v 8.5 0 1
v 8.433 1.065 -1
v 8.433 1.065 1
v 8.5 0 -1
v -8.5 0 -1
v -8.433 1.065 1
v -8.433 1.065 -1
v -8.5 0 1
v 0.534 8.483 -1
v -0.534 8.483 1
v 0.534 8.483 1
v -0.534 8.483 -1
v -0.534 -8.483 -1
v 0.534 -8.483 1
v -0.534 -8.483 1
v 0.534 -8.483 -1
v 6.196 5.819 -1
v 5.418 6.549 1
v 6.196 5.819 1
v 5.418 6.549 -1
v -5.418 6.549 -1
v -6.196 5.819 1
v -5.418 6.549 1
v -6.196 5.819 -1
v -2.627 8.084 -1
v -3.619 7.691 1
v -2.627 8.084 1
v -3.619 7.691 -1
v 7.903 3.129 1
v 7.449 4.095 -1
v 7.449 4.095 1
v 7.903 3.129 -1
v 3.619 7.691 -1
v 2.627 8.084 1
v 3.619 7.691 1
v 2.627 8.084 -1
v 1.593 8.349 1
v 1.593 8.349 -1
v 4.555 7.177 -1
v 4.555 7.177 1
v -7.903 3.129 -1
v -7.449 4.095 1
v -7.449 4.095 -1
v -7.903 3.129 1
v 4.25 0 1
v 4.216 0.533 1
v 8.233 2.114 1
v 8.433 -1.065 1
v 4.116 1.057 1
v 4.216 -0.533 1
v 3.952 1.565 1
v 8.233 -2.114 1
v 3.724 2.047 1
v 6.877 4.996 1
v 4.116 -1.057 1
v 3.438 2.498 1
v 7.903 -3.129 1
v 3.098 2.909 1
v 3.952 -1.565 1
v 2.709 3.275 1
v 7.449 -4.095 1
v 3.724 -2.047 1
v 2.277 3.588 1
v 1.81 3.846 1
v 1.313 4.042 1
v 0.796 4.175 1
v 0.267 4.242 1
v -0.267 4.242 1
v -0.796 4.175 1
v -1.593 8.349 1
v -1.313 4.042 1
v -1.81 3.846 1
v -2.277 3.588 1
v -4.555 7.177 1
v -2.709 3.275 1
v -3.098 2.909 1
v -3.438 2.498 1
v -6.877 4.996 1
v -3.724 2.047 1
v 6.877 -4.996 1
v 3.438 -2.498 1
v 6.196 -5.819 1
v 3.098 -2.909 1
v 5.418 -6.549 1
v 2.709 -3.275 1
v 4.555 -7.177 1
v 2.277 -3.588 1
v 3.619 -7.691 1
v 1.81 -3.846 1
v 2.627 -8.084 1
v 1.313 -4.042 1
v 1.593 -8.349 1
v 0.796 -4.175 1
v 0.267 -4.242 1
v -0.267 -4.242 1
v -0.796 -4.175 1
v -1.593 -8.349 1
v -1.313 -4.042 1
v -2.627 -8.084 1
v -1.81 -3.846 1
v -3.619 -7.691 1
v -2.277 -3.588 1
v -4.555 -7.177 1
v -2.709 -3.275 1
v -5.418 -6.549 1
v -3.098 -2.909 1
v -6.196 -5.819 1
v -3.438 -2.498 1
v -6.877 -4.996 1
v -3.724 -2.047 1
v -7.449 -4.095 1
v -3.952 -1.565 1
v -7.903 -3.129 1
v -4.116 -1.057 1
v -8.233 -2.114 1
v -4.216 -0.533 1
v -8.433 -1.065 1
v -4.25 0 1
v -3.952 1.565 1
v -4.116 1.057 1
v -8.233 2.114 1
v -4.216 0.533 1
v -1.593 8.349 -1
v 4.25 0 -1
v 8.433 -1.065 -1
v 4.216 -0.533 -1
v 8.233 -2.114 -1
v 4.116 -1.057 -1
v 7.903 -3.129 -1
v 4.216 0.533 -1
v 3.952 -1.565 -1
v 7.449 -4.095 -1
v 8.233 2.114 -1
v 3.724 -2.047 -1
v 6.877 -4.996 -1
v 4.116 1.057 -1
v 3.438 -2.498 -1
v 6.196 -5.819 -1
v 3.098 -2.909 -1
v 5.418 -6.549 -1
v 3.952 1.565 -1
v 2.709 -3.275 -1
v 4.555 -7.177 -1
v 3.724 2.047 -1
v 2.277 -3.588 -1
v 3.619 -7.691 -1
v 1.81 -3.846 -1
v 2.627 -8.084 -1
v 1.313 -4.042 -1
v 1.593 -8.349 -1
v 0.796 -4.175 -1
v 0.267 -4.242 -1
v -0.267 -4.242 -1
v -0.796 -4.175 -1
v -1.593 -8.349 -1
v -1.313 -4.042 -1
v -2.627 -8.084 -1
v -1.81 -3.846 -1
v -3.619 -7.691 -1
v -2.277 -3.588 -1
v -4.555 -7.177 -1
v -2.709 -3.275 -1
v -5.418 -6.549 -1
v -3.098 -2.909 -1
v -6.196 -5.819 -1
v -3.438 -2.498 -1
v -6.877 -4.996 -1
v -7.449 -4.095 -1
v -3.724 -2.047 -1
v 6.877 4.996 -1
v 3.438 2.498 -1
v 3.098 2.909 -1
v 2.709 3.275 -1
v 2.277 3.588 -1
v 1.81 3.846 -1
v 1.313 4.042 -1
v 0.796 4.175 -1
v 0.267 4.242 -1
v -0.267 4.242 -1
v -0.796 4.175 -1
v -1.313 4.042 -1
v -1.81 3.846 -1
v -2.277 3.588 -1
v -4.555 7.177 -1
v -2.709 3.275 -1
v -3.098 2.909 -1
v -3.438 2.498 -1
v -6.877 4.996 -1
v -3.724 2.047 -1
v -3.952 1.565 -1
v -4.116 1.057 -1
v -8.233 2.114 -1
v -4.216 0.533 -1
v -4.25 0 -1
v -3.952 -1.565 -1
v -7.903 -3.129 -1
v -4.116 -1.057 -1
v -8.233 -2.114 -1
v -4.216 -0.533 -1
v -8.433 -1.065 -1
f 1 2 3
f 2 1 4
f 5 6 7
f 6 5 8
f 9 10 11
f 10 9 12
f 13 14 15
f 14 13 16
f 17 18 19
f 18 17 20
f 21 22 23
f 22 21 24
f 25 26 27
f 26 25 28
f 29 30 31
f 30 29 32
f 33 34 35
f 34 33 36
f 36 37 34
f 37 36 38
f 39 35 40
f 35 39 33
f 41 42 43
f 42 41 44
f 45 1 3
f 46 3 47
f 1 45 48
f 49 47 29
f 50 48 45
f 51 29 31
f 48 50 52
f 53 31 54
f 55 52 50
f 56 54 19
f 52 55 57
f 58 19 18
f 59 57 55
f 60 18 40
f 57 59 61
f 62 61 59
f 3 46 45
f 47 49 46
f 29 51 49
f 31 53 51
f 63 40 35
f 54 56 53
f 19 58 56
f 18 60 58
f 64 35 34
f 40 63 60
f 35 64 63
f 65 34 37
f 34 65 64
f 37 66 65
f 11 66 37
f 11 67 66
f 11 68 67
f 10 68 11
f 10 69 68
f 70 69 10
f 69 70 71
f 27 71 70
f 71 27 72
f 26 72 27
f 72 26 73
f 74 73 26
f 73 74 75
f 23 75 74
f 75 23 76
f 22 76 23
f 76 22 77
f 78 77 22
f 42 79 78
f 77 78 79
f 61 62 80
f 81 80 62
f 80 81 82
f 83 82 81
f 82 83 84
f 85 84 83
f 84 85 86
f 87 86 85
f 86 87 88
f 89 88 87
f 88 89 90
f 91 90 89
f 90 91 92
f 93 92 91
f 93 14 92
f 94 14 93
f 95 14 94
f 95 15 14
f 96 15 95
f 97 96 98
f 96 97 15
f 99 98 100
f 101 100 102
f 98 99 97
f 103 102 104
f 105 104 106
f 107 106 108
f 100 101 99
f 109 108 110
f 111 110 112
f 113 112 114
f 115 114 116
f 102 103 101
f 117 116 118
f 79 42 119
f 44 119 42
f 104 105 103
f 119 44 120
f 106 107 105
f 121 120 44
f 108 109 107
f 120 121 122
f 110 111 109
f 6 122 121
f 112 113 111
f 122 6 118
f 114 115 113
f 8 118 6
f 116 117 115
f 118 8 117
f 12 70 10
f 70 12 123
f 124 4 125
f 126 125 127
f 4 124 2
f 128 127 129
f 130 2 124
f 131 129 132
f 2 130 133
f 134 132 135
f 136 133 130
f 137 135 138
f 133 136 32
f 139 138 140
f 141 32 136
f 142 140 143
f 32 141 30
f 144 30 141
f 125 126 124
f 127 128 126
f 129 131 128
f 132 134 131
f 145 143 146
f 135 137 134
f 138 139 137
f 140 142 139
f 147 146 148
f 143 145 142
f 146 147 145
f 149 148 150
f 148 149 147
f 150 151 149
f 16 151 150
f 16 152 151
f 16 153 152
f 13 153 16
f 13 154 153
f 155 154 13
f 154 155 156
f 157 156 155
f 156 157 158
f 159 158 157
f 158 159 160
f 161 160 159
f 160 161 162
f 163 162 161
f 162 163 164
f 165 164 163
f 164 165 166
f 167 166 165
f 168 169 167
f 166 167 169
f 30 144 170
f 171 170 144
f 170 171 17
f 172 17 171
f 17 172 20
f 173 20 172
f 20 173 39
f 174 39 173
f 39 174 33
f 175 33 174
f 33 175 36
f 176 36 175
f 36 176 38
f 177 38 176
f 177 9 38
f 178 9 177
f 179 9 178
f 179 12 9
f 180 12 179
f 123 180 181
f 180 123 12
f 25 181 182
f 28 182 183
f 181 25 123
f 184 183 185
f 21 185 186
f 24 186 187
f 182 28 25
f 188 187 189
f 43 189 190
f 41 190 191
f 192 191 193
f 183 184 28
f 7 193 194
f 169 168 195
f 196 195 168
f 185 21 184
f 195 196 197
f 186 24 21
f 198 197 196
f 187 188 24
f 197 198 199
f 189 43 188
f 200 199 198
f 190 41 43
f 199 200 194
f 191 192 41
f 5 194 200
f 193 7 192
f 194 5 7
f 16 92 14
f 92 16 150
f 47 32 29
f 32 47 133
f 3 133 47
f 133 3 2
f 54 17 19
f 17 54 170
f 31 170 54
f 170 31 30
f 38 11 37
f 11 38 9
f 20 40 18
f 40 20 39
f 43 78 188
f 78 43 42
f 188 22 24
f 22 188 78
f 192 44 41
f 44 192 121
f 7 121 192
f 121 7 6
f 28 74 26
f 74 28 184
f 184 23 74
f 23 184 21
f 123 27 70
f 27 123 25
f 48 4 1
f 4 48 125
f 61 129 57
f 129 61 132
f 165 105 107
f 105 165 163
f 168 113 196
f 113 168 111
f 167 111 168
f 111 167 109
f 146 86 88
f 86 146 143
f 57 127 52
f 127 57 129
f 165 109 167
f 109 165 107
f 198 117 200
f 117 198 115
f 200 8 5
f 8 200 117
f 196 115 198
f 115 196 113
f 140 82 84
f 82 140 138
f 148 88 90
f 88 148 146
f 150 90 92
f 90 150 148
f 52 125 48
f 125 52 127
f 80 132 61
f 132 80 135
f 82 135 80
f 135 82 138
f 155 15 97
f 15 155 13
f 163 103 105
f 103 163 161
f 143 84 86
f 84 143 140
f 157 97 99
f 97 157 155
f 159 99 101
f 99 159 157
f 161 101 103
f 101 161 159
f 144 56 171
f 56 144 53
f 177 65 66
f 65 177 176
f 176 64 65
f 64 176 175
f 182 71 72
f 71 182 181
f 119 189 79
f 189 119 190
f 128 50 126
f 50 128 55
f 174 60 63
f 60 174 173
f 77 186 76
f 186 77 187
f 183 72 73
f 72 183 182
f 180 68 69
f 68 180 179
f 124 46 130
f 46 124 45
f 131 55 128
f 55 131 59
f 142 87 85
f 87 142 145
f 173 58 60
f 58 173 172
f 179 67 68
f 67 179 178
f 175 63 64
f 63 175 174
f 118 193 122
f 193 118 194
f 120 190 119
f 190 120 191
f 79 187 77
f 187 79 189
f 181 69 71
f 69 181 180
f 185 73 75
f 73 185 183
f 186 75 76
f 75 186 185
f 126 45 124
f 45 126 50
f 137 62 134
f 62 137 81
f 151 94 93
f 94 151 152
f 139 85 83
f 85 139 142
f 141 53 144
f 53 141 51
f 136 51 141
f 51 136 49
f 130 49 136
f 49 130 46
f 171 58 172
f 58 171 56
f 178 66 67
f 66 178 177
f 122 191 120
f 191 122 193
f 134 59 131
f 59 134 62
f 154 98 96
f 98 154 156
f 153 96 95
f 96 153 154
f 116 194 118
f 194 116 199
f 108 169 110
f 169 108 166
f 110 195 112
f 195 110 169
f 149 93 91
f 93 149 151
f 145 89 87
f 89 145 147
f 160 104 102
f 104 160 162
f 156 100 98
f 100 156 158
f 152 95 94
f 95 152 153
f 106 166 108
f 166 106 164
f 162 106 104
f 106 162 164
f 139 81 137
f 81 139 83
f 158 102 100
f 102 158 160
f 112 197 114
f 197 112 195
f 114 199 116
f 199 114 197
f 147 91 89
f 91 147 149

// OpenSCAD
$fn = 50;


difference() {
	union() {
		translate(v = [0, 0, -1.0000000000]) {
			cylinder(h = 2, r = 8.5000000000);
		}
	}
	union() {
		translate(v = [0, 0, -100.0000000000]) {
			cylinder(h = 200, r = 4.2500000000);
		}
	}
}
